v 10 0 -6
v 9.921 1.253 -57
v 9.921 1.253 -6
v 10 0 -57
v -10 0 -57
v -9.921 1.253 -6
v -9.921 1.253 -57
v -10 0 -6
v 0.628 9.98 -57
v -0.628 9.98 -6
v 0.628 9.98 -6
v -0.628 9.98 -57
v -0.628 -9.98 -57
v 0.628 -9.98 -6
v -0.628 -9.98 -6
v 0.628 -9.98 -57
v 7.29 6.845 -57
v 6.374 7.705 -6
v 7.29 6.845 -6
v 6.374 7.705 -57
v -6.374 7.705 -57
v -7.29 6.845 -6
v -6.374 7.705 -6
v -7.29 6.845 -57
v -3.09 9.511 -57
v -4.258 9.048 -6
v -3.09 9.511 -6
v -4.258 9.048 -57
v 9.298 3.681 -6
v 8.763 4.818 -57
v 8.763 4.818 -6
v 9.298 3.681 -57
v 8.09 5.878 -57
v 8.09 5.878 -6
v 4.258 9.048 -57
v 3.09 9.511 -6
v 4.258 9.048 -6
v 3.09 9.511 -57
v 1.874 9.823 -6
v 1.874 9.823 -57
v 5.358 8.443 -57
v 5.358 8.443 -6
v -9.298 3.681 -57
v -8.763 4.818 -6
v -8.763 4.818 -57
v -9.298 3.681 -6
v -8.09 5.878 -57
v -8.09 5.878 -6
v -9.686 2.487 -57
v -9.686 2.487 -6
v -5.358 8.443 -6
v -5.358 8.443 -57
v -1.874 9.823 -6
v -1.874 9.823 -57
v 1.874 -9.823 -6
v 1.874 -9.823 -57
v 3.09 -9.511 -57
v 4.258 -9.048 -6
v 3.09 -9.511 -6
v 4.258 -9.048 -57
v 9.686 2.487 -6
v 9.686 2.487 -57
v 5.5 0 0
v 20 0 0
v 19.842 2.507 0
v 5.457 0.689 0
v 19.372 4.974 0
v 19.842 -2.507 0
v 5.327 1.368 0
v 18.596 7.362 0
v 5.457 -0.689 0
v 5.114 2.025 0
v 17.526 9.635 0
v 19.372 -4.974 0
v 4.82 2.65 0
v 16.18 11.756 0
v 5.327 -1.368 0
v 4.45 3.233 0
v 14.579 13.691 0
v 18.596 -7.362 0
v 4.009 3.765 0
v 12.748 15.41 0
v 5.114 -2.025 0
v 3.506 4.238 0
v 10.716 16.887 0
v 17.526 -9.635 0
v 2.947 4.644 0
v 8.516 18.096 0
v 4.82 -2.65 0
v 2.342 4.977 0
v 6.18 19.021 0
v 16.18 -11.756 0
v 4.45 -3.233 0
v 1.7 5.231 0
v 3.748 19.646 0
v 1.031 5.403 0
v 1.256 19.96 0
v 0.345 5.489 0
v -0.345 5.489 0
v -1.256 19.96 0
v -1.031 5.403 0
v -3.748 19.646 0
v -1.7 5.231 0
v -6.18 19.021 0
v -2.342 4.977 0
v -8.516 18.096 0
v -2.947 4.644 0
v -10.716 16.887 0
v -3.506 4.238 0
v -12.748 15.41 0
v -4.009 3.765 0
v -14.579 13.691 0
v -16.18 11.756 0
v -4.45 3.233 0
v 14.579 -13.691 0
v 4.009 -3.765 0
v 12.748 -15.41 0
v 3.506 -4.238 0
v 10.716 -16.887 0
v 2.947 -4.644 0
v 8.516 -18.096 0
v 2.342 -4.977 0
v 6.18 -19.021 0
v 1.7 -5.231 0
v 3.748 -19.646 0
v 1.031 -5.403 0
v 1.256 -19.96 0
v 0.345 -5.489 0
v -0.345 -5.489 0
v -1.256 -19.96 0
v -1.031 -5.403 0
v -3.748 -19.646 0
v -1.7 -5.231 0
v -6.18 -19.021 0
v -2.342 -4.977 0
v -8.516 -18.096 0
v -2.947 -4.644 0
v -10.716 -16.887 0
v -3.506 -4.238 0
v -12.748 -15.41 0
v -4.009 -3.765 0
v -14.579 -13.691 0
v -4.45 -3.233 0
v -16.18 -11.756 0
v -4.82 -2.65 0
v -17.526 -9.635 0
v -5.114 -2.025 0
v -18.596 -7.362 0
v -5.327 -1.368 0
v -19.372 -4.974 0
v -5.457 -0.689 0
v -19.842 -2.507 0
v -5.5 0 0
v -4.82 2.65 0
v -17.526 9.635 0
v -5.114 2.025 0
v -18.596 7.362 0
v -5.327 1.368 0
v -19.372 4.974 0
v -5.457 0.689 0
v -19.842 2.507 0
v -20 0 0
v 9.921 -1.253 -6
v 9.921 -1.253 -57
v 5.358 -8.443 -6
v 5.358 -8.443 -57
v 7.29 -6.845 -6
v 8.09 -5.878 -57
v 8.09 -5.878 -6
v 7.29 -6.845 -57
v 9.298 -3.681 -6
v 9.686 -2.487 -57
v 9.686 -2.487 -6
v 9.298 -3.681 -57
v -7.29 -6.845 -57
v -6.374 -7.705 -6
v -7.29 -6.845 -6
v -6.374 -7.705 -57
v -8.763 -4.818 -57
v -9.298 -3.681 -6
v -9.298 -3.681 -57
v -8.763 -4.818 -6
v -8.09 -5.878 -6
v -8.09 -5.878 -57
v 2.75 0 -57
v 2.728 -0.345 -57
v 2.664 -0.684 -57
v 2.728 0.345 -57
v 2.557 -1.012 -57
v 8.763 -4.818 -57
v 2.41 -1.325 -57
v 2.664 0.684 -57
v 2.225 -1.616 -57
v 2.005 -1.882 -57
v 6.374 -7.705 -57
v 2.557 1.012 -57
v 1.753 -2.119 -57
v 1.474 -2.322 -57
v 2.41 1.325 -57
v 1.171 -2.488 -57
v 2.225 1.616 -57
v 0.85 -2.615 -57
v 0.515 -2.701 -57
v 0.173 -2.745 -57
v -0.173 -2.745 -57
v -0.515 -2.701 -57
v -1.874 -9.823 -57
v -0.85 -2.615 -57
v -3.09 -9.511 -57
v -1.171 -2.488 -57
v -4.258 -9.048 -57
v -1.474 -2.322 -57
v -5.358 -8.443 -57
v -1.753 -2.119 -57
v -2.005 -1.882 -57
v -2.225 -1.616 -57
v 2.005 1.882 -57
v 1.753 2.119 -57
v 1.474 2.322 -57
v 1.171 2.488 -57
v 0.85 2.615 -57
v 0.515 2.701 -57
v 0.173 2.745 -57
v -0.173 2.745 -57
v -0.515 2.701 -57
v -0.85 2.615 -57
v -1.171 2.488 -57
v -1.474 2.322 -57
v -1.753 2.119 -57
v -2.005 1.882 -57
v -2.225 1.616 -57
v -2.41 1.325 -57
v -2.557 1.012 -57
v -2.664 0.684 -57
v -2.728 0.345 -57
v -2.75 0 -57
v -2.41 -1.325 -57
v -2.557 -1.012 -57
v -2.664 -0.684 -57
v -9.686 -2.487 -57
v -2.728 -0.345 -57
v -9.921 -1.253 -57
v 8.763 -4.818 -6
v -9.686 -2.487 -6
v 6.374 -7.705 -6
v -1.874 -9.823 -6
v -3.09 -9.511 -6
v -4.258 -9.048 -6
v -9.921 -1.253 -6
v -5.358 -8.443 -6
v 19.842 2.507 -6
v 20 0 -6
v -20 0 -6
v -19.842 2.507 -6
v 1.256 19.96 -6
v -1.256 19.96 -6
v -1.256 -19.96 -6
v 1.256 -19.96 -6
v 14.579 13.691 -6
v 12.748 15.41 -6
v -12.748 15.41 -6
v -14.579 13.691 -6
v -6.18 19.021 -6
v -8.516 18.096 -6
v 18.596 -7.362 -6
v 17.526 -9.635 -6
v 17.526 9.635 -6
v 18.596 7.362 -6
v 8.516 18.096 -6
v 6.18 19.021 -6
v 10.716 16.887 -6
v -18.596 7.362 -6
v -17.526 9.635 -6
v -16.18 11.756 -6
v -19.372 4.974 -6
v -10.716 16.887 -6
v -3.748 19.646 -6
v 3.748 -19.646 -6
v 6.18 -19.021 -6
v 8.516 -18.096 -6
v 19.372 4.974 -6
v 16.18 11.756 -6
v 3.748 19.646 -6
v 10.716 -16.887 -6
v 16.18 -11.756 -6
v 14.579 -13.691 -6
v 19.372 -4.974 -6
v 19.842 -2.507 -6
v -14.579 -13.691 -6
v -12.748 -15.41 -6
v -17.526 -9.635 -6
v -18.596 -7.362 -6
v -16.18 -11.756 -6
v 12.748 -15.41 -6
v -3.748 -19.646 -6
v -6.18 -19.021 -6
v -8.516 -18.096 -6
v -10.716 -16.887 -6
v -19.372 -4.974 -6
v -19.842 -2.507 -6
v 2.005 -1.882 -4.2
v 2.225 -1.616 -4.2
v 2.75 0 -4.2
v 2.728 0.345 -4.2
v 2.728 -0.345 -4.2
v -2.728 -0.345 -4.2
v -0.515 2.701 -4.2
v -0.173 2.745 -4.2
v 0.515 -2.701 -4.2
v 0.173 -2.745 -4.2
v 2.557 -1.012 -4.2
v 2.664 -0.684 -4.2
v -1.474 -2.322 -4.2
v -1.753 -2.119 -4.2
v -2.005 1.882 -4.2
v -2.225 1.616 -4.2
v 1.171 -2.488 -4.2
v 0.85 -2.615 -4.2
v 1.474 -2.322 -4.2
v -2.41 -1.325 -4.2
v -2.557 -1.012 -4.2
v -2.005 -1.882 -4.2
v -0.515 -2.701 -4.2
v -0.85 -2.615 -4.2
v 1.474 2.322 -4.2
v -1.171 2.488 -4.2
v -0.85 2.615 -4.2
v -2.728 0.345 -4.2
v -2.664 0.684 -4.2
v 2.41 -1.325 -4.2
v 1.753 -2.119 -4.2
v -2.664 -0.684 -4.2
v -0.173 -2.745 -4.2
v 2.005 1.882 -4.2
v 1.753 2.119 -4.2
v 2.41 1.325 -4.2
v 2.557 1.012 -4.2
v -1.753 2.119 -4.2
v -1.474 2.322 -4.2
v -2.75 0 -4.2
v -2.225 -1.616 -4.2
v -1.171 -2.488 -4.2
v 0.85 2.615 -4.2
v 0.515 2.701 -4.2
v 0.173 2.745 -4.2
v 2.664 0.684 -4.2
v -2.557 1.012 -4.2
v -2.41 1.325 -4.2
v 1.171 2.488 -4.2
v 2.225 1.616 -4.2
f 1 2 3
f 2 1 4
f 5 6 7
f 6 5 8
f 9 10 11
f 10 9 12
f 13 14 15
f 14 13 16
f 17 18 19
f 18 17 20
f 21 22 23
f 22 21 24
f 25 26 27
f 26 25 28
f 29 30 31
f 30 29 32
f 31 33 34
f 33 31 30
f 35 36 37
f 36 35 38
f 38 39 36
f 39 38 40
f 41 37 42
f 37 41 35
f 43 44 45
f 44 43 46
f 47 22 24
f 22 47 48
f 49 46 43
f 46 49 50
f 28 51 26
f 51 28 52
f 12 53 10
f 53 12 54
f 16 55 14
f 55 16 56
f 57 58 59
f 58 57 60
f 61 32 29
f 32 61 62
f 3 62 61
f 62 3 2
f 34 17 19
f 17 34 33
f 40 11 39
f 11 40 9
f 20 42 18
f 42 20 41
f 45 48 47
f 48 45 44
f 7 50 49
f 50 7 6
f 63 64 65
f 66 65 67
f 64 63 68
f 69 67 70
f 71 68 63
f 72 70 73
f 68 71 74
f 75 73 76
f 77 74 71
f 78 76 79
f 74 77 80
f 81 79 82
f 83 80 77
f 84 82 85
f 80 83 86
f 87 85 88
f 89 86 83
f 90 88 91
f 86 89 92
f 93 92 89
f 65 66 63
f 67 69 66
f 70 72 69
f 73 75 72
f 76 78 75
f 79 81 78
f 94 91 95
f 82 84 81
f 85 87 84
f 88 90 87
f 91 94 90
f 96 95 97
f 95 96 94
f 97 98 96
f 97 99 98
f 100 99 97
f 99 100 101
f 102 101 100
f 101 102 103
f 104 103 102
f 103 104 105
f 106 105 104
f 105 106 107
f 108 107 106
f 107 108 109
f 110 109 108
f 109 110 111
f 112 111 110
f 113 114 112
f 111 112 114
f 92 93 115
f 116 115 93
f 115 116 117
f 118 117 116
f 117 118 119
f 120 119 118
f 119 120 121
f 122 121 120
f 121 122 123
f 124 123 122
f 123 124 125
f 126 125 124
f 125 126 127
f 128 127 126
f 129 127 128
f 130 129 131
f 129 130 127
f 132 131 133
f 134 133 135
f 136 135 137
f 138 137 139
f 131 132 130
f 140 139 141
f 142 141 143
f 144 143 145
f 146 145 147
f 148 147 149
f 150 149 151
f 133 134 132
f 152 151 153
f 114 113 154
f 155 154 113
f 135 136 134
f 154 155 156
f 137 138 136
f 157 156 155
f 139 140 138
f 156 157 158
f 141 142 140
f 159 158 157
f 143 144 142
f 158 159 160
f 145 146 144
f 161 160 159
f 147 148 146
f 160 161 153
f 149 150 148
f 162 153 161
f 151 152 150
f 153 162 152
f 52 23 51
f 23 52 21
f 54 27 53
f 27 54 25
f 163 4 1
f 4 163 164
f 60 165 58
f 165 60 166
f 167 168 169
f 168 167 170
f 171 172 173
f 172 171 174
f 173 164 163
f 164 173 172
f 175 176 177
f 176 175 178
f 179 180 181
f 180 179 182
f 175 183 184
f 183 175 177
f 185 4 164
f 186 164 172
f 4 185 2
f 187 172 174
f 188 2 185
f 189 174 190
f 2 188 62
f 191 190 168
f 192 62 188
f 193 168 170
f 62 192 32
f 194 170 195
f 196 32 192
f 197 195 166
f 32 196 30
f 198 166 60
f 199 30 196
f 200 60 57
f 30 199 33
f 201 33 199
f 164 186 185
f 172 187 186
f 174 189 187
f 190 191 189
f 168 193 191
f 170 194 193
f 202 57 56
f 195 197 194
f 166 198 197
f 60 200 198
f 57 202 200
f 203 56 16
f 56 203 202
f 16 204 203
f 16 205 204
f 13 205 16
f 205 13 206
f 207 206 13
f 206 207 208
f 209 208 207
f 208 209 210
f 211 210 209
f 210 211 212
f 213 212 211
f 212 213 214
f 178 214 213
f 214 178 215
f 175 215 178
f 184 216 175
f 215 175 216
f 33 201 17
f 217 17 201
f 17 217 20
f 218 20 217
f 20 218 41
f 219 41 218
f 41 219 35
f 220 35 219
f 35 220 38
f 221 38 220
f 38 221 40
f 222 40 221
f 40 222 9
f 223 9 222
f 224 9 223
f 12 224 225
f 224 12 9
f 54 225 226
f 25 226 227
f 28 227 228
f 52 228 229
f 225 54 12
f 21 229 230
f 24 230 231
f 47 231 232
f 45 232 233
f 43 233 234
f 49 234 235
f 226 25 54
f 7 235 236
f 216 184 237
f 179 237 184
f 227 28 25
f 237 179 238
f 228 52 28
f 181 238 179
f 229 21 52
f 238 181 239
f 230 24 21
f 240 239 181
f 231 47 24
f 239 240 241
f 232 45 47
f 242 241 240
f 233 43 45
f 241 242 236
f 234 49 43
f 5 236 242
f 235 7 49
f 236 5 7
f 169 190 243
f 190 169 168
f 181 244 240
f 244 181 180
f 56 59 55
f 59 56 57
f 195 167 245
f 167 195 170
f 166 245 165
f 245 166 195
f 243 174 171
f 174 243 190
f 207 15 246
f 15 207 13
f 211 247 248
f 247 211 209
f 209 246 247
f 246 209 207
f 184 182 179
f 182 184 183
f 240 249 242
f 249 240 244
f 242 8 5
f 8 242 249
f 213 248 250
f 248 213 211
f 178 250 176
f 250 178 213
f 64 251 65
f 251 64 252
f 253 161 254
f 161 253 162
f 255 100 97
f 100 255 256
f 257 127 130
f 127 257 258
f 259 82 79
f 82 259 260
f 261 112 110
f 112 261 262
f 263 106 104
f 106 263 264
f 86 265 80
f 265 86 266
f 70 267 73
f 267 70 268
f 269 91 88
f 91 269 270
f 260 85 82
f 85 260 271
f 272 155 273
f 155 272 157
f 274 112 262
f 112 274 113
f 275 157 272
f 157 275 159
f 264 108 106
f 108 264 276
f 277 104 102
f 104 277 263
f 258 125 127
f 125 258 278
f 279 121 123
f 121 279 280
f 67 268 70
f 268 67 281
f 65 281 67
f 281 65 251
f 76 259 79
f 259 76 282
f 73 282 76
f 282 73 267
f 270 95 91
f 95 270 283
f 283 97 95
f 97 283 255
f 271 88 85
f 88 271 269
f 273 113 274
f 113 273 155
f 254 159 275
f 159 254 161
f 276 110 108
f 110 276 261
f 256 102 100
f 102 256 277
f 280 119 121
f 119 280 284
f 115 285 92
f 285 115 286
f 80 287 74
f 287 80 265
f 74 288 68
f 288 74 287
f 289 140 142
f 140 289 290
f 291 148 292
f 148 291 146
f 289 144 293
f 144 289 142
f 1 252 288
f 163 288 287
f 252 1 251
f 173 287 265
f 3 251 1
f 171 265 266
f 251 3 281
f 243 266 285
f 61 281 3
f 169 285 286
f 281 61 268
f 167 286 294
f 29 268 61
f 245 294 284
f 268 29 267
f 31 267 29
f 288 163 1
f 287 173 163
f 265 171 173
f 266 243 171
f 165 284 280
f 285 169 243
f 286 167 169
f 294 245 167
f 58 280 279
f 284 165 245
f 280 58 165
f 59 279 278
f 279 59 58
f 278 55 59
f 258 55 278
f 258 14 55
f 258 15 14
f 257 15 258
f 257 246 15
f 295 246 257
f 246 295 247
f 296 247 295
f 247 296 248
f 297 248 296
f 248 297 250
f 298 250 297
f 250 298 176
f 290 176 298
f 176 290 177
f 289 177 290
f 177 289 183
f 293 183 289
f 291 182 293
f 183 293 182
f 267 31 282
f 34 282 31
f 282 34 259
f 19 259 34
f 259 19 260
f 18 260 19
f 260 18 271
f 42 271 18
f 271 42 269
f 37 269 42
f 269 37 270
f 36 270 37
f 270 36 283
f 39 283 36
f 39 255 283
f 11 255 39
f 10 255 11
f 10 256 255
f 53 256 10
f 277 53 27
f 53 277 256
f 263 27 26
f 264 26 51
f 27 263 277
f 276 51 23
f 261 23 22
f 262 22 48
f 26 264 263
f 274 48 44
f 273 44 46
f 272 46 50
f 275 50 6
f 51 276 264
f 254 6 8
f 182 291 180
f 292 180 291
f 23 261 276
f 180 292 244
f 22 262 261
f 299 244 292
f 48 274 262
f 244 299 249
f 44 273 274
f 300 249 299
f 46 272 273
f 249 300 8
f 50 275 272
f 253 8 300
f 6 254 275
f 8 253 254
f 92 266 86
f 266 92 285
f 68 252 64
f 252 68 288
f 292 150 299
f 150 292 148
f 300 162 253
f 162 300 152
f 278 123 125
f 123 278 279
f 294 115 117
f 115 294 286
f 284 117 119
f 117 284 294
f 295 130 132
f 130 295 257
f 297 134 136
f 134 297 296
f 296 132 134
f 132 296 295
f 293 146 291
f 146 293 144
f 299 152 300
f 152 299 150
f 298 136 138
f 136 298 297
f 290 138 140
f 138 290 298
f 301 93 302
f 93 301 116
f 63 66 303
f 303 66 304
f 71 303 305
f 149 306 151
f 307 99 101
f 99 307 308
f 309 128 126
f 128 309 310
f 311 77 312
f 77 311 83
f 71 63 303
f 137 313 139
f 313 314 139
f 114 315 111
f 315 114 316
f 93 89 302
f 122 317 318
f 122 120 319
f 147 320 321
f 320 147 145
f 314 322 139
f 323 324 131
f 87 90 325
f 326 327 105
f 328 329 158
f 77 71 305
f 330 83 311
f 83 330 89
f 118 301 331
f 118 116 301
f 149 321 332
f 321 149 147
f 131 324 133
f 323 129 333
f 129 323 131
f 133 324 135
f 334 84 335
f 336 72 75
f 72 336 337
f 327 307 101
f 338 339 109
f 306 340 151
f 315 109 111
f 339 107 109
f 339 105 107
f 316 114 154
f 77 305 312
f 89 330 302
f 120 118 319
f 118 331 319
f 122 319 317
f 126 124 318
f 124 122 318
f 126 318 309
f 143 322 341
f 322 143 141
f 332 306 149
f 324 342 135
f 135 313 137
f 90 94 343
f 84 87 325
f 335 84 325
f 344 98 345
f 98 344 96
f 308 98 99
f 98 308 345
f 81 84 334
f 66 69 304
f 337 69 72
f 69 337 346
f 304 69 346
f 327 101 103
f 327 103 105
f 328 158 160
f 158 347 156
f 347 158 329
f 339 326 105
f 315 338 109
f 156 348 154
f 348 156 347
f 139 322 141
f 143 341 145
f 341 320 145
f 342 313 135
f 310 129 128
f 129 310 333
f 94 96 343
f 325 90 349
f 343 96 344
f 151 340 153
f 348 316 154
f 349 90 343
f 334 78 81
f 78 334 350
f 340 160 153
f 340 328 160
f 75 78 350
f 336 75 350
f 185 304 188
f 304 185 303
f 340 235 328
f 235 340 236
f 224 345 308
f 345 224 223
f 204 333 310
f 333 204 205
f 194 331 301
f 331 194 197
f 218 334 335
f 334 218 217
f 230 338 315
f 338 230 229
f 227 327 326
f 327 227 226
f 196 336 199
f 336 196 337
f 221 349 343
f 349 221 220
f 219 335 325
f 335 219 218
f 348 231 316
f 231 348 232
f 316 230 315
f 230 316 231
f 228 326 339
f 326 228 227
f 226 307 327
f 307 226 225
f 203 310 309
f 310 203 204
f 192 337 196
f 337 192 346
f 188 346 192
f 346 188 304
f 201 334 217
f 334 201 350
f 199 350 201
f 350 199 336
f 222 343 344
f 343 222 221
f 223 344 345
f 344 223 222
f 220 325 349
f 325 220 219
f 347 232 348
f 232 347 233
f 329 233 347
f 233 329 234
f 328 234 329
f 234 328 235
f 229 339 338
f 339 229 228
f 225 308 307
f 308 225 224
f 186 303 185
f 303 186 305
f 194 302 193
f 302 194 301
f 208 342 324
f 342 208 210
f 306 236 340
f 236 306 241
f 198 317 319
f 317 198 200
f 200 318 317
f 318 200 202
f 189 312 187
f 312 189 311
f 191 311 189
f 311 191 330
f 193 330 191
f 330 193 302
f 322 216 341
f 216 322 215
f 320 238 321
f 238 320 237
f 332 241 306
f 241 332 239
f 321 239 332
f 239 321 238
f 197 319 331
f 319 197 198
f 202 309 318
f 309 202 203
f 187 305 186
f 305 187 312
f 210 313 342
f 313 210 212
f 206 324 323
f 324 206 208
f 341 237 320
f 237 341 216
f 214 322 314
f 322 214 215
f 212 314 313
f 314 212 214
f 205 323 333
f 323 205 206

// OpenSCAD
$fn = 50;


difference() {
	union() {
		translate(v = [0, 0, -57.0000000000]) {
			cylinder(h = 57, r = 10.0000000000);
		}
		translate(v = [0, 0, -6.0000000000]) {
			cylinder(h = 6, r = 20.0000000000);
		}
	}
	union() {
		translate(v = [0, 0, 0]) {
			rotate(a = [0, 0, 0]) {
				difference() {
					union() {
						#translate(v = [0, 0, -57.0000000000]) {
							cylinder(h = 57, r = 2.2500000000);
						}
						#translate(v = [0, 0, -4.2000000000]) {
							cylinder(h = 4.2000000000, r1 = 2.7500000000, r2 = 5.5000000000);
						}
						#translate(v = [0, 0, -57.0000000000]) {
							cylinder(h = 57, r = 2.7500000000);
						}
						#translate(v = [0, 0, -57.0000000000]) {
							cylinder(h = 57, r = 2.2500000000);
						}
					}
					union();
				}
			}
		}
	}
}
